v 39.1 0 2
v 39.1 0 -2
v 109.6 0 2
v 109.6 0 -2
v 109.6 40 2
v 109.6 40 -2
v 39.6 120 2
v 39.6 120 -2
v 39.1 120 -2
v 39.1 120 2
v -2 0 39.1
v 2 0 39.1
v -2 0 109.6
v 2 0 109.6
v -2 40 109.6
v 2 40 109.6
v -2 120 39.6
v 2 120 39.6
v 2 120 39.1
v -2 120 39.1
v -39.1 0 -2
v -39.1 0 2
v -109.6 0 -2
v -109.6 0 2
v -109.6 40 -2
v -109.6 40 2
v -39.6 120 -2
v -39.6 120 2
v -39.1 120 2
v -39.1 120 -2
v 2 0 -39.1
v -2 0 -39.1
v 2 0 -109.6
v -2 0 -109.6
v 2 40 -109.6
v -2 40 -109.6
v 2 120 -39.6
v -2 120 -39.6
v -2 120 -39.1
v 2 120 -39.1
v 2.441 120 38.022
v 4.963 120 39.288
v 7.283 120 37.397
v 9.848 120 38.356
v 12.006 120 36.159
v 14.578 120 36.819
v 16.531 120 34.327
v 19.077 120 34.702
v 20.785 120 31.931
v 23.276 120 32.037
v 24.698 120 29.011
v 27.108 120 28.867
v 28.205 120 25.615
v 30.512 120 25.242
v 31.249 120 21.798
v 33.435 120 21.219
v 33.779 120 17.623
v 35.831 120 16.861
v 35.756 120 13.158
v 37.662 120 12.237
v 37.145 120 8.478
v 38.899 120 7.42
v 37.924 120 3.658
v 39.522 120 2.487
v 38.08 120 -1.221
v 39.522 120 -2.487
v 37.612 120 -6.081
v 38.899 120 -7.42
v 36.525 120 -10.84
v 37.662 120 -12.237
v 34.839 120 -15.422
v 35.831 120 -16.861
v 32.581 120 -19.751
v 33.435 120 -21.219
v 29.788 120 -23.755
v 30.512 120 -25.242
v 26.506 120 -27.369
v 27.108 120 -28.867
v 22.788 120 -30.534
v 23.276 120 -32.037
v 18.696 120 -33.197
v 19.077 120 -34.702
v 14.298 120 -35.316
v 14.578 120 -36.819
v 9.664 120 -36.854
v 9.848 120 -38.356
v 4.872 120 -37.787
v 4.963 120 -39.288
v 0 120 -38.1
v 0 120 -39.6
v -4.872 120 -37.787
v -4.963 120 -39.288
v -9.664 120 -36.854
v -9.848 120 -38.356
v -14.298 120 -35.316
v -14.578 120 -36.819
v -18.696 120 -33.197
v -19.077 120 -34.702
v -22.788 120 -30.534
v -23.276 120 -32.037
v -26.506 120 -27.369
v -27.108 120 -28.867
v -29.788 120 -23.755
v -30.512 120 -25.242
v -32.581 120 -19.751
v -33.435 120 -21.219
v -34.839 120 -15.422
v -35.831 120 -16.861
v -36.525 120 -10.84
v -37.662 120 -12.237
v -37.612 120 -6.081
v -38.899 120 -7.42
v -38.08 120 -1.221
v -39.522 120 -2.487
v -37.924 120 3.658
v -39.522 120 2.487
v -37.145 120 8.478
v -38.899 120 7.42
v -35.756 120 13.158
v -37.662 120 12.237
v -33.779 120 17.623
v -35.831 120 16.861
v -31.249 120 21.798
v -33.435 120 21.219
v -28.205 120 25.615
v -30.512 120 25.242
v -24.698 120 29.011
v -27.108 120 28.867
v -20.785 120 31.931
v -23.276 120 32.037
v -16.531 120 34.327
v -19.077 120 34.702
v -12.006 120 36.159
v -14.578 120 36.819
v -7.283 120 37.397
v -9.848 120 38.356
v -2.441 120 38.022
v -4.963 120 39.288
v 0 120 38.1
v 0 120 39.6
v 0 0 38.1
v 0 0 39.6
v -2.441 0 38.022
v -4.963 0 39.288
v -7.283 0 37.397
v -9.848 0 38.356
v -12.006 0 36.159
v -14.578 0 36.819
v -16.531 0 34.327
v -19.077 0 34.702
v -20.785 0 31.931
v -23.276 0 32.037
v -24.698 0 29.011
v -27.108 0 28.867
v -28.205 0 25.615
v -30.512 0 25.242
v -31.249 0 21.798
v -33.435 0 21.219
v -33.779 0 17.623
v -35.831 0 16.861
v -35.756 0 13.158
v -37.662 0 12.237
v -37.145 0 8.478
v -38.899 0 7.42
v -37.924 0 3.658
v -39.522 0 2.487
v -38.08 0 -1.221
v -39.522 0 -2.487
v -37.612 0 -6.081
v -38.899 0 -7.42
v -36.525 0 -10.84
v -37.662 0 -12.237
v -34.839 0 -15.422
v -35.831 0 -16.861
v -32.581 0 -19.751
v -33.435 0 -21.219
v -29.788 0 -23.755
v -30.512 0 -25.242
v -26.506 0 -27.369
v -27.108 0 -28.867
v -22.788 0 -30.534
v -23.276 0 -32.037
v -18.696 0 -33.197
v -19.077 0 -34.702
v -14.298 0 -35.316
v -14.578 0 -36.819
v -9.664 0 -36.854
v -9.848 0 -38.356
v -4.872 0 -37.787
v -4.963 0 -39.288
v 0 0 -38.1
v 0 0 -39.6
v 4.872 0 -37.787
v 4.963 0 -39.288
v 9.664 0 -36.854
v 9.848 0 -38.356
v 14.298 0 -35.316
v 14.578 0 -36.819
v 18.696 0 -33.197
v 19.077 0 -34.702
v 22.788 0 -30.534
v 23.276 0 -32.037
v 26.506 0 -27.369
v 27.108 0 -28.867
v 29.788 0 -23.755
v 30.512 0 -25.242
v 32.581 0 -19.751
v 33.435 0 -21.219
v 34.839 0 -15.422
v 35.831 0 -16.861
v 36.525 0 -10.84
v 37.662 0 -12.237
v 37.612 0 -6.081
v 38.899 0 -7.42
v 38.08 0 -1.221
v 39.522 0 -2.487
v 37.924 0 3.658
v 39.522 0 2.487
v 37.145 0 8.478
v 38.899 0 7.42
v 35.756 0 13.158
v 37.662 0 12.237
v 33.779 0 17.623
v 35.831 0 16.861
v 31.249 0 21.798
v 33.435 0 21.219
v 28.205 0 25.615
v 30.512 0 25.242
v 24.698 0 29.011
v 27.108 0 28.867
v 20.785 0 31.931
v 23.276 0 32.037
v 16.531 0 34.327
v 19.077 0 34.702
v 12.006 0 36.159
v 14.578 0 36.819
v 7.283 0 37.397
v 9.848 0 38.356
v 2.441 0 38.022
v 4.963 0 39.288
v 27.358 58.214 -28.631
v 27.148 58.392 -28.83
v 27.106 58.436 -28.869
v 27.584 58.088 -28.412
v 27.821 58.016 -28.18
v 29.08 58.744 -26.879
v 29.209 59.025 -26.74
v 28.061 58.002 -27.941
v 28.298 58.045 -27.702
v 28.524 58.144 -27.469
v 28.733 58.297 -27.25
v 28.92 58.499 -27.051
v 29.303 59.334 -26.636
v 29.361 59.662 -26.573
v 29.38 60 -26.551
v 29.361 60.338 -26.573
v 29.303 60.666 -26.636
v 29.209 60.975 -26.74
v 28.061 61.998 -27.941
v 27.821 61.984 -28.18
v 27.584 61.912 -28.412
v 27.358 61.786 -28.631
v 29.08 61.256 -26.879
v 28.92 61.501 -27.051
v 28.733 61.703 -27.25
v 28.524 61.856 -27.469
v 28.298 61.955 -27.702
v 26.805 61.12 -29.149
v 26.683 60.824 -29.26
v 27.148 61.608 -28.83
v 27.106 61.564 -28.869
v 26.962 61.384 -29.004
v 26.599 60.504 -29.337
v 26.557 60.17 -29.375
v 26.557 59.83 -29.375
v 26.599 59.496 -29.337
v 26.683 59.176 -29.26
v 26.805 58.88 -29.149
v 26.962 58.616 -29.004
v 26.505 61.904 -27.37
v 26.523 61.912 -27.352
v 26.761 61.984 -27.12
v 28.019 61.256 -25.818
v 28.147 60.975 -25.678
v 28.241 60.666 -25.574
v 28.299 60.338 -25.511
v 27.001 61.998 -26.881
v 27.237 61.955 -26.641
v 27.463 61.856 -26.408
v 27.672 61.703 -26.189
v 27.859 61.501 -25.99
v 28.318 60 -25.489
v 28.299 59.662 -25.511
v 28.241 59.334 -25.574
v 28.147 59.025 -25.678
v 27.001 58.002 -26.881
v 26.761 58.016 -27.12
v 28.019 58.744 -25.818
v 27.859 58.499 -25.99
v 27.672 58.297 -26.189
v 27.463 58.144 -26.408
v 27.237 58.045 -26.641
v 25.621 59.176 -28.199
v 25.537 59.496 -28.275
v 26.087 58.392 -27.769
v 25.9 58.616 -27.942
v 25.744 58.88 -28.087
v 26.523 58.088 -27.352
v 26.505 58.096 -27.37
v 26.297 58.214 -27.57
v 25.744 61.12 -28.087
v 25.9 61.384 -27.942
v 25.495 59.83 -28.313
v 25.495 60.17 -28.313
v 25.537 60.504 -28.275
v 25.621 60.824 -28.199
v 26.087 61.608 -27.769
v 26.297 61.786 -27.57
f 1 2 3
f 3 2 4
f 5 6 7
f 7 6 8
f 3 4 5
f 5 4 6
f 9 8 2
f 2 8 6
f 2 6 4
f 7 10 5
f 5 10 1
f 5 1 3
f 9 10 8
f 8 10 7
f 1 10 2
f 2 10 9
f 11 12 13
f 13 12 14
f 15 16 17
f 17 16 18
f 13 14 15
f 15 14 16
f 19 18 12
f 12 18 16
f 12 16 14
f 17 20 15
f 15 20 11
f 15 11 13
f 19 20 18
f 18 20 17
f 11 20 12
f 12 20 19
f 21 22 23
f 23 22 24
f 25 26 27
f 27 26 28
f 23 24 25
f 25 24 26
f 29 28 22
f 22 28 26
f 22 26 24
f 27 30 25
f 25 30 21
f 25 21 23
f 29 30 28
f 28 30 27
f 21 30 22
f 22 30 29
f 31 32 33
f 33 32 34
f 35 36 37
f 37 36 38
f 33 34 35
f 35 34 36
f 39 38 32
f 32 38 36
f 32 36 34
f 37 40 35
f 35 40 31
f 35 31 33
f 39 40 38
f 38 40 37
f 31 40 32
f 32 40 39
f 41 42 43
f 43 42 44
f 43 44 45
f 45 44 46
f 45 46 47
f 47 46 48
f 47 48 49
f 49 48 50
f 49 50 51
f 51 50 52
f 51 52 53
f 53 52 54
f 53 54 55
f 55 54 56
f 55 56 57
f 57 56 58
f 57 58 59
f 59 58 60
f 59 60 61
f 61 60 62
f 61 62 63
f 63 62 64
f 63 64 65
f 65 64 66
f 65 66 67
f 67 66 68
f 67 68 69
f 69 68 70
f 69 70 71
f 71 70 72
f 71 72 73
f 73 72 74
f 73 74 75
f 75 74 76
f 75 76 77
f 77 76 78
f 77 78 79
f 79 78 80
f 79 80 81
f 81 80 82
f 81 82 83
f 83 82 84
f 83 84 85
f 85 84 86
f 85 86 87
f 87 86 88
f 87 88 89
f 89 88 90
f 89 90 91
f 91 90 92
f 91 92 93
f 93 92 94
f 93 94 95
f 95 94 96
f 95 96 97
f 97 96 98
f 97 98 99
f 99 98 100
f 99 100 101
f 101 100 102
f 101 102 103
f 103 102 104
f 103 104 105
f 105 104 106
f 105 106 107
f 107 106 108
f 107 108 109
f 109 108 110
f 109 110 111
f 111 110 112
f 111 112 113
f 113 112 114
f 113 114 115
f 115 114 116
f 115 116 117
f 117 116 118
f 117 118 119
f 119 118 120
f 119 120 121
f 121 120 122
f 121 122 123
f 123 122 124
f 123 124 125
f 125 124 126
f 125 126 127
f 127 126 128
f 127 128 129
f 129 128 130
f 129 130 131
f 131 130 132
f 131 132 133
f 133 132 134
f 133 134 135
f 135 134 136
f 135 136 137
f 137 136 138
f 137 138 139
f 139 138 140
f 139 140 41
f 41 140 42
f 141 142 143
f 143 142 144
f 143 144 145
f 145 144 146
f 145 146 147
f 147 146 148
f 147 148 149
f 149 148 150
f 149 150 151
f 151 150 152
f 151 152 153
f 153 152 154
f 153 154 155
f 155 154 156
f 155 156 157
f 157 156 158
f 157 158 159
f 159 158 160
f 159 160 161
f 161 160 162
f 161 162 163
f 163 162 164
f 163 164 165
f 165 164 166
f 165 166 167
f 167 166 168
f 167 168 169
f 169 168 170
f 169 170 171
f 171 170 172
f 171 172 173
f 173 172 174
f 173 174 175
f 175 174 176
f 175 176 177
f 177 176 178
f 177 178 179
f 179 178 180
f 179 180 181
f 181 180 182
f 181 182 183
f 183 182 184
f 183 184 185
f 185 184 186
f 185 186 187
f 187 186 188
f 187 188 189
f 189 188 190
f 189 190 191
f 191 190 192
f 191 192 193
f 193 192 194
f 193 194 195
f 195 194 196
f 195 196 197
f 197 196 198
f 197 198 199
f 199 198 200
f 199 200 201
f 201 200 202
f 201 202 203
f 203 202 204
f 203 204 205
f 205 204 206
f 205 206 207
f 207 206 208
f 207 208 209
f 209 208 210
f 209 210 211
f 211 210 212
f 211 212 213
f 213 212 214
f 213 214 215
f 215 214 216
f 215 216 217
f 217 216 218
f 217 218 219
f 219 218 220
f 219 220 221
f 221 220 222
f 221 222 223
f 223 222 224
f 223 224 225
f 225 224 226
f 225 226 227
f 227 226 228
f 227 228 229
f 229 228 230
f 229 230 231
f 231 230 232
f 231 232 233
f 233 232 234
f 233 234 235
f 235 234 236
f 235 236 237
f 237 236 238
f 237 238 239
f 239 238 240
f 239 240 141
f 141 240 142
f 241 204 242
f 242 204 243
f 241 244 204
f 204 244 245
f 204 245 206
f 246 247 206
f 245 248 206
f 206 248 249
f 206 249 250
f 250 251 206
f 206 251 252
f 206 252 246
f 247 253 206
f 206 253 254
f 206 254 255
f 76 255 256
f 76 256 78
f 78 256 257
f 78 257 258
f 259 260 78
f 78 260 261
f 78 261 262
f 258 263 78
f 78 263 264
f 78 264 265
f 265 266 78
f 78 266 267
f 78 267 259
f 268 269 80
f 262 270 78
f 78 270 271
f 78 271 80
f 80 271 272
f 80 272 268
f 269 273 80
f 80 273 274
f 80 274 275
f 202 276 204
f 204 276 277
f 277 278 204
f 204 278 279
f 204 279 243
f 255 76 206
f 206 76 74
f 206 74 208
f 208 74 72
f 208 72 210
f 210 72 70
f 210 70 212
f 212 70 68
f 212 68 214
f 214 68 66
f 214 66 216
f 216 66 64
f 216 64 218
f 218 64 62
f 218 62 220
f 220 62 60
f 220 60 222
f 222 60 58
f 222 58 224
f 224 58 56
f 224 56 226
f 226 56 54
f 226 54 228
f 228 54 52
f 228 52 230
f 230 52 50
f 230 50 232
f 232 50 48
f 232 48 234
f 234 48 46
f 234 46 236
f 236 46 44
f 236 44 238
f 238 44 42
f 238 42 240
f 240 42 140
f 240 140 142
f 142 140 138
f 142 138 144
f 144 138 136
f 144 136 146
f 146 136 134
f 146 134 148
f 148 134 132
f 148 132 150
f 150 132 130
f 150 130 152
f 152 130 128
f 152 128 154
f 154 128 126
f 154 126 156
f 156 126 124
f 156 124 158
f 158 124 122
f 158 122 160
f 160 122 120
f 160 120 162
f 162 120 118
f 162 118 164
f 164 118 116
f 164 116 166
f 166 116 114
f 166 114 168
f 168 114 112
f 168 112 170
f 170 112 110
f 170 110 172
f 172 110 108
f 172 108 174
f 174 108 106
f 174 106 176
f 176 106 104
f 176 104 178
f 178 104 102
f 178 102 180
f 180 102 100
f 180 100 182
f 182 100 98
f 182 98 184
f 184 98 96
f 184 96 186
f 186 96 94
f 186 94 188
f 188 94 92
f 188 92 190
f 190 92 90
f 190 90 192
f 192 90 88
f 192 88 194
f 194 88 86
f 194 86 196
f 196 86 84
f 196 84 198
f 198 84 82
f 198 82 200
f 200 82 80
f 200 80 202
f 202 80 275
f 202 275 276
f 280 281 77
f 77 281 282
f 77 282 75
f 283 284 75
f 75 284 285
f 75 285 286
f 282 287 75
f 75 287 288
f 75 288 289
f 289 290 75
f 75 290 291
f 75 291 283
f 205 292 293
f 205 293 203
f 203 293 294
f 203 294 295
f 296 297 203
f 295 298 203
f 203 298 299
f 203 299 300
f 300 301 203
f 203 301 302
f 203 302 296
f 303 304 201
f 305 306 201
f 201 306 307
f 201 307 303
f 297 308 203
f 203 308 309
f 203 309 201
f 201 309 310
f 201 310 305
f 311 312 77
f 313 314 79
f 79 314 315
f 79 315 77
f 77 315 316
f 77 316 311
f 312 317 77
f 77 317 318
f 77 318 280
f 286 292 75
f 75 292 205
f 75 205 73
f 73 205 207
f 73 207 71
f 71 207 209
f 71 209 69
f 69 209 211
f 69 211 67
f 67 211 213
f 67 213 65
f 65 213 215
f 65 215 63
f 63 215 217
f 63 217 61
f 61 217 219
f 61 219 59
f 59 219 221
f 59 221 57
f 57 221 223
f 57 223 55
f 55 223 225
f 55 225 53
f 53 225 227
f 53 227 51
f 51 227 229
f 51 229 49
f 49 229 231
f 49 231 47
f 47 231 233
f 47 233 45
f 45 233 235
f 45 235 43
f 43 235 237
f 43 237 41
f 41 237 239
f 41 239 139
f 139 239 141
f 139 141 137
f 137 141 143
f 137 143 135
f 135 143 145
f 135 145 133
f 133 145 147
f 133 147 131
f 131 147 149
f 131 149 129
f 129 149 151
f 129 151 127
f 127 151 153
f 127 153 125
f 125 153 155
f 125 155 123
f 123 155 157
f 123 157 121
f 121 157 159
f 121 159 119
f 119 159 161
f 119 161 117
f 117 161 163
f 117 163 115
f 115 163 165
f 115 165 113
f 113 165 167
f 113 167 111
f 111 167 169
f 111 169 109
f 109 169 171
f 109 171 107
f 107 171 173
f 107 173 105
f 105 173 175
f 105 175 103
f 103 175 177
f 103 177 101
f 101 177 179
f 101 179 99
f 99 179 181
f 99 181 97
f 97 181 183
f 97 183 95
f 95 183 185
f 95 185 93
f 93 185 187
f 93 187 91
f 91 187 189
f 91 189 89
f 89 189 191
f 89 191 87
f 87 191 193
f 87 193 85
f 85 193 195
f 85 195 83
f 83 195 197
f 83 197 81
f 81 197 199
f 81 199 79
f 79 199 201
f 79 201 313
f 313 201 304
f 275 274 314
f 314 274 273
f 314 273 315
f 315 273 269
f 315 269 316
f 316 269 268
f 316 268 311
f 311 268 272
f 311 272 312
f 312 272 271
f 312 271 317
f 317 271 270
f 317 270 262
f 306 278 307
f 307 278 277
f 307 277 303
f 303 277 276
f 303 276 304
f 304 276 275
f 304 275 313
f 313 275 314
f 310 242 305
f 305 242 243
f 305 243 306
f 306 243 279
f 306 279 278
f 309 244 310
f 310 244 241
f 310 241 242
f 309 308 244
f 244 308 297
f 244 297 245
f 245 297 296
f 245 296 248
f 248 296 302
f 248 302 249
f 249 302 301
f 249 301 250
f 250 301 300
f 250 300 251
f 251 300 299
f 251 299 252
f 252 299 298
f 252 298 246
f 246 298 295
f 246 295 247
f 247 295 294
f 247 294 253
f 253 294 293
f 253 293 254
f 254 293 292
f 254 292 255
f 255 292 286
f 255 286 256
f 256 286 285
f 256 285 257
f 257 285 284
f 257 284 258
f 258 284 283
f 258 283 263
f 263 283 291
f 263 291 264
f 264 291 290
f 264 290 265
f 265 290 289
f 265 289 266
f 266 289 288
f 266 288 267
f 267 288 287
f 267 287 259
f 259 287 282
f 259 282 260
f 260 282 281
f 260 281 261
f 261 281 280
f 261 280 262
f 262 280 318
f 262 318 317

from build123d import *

# Parameters (mm, degrees)
SKETCH1_R                = 39.6
SKETCH1_R_2              = 38.1
BOSS_EXTRUDE1_DEPTH      = 120
BOSS_EXTRUDE2_DEPTH      = 2
BOSS_EXTRUDE2_DEPTH_BACK = 2
SKETCH3_W                = 4
SKETCH3_H                = 120
BOSS_EXTRUDE3_DEPTH      = 0.5
CIRPATTERN1_COUNT        = 4
CUT_EXTRUDE1_REACH       = 198.021
CUT_EXTRUDE1_END_RADIUS  = 39.6
SKETCH5_R                = 2


with BuildPart() as part:
    # Sketch1 → Boss-Extrude1 (new body)
    with BuildSketch(Plane(origin=(0, 0, 0), x_dir=(1, 0, 0), z_dir=(0, 1, 0))):
        Circle(SKETCH1_R)
        Circle(SKETCH1_R_2, mode=Mode.SUBTRACT)
    extrude(amount=BOSS_EXTRUDE1_DEPTH)

    # Cut-Extrude1: up to this cylinder (the profile starts inside it)
    cut_extrude1_end = Plane(origin=(0, 60, 0), z_dir=(0, -1, 0)) * Cylinder(CUT_EXTRUDE1_END_RADIUS, 476.242, mode=Mode.PRIVATE)
    # Sketch5 → Cut-Extrude1 (cut, up to the surface)
    with BuildSketch(Plane(origin=(0, 0, 0), x_dir=(0.7071067811865477, 0, 0.7071067811865475), z_dir=(-0.7071067811865475, 0, 0.7071067811865477)), mode=Mode.PRIVATE) as cut_extrude1_sk1:
        with Locations((0, 60)):
            Circle(SKETCH5_R)
    cut_extrude1_tool1 = extrude(cut_extrude1_sk1.sketch, amount=-CUT_EXTRUDE1_REACH, mode=Mode.PRIVATE) & cut_extrude1_end
    add(cut_extrude1_tool1.solids().sort_by_distance((0, 60, 0))[0], mode=Mode.SUBTRACT)


with BuildPart() as body_2:
    # Sketch2 → Boss-Extrude2 (new, two sides: drawn at the far end of the back side and taken through both)
    with BuildSketch(Plane.XY.offset(-BOSS_EXTRUDE2_DEPTH_BACK)):
        Polygon((39.6, 0), (39.6, 120), (109.6, 40), (109.6, 0), align=None)
    extrude(amount=BOSS_EXTRUDE2_DEPTH + BOSS_EXTRUDE2_DEPTH_BACK)

    # Sketch3 → Boss-Extrude3 (add)
    with BuildSketch(Plane.ZY.offset(-39.6)):
        with Locations((0, 60)):
            Rectangle(SKETCH3_W, SKETCH3_H)
    extrude(amount=BOSS_EXTRUDE3_DEPTH)


with BuildPart() as cirpattern1_1:
    # CirPattern1: pattern copy
    add(body_2.part.rotate(Axis((0, 120, 0), (0, -1, 0)), 1 * 360 / CIRPATTERN1_COUNT))


with BuildPart() as cirpattern1_2:
    # CirPattern1: pattern copy
    add(body_2.part.rotate(Axis((0, 120, 0), (0, -1, 0)), 2 * 360 / CIRPATTERN1_COUNT))


with BuildPart() as cirpattern1_3:
    # CirPattern1: pattern copy
    add(body_2.part.rotate(Axis((0, 120, 0), (0, -1, 0)), 3 * 360 / CIRPATTERN1_COUNT))


solid = Compound([part.part, body_2.part, cirpattern1_1.part, cirpattern1_2.part, cirpattern1_3.part])
